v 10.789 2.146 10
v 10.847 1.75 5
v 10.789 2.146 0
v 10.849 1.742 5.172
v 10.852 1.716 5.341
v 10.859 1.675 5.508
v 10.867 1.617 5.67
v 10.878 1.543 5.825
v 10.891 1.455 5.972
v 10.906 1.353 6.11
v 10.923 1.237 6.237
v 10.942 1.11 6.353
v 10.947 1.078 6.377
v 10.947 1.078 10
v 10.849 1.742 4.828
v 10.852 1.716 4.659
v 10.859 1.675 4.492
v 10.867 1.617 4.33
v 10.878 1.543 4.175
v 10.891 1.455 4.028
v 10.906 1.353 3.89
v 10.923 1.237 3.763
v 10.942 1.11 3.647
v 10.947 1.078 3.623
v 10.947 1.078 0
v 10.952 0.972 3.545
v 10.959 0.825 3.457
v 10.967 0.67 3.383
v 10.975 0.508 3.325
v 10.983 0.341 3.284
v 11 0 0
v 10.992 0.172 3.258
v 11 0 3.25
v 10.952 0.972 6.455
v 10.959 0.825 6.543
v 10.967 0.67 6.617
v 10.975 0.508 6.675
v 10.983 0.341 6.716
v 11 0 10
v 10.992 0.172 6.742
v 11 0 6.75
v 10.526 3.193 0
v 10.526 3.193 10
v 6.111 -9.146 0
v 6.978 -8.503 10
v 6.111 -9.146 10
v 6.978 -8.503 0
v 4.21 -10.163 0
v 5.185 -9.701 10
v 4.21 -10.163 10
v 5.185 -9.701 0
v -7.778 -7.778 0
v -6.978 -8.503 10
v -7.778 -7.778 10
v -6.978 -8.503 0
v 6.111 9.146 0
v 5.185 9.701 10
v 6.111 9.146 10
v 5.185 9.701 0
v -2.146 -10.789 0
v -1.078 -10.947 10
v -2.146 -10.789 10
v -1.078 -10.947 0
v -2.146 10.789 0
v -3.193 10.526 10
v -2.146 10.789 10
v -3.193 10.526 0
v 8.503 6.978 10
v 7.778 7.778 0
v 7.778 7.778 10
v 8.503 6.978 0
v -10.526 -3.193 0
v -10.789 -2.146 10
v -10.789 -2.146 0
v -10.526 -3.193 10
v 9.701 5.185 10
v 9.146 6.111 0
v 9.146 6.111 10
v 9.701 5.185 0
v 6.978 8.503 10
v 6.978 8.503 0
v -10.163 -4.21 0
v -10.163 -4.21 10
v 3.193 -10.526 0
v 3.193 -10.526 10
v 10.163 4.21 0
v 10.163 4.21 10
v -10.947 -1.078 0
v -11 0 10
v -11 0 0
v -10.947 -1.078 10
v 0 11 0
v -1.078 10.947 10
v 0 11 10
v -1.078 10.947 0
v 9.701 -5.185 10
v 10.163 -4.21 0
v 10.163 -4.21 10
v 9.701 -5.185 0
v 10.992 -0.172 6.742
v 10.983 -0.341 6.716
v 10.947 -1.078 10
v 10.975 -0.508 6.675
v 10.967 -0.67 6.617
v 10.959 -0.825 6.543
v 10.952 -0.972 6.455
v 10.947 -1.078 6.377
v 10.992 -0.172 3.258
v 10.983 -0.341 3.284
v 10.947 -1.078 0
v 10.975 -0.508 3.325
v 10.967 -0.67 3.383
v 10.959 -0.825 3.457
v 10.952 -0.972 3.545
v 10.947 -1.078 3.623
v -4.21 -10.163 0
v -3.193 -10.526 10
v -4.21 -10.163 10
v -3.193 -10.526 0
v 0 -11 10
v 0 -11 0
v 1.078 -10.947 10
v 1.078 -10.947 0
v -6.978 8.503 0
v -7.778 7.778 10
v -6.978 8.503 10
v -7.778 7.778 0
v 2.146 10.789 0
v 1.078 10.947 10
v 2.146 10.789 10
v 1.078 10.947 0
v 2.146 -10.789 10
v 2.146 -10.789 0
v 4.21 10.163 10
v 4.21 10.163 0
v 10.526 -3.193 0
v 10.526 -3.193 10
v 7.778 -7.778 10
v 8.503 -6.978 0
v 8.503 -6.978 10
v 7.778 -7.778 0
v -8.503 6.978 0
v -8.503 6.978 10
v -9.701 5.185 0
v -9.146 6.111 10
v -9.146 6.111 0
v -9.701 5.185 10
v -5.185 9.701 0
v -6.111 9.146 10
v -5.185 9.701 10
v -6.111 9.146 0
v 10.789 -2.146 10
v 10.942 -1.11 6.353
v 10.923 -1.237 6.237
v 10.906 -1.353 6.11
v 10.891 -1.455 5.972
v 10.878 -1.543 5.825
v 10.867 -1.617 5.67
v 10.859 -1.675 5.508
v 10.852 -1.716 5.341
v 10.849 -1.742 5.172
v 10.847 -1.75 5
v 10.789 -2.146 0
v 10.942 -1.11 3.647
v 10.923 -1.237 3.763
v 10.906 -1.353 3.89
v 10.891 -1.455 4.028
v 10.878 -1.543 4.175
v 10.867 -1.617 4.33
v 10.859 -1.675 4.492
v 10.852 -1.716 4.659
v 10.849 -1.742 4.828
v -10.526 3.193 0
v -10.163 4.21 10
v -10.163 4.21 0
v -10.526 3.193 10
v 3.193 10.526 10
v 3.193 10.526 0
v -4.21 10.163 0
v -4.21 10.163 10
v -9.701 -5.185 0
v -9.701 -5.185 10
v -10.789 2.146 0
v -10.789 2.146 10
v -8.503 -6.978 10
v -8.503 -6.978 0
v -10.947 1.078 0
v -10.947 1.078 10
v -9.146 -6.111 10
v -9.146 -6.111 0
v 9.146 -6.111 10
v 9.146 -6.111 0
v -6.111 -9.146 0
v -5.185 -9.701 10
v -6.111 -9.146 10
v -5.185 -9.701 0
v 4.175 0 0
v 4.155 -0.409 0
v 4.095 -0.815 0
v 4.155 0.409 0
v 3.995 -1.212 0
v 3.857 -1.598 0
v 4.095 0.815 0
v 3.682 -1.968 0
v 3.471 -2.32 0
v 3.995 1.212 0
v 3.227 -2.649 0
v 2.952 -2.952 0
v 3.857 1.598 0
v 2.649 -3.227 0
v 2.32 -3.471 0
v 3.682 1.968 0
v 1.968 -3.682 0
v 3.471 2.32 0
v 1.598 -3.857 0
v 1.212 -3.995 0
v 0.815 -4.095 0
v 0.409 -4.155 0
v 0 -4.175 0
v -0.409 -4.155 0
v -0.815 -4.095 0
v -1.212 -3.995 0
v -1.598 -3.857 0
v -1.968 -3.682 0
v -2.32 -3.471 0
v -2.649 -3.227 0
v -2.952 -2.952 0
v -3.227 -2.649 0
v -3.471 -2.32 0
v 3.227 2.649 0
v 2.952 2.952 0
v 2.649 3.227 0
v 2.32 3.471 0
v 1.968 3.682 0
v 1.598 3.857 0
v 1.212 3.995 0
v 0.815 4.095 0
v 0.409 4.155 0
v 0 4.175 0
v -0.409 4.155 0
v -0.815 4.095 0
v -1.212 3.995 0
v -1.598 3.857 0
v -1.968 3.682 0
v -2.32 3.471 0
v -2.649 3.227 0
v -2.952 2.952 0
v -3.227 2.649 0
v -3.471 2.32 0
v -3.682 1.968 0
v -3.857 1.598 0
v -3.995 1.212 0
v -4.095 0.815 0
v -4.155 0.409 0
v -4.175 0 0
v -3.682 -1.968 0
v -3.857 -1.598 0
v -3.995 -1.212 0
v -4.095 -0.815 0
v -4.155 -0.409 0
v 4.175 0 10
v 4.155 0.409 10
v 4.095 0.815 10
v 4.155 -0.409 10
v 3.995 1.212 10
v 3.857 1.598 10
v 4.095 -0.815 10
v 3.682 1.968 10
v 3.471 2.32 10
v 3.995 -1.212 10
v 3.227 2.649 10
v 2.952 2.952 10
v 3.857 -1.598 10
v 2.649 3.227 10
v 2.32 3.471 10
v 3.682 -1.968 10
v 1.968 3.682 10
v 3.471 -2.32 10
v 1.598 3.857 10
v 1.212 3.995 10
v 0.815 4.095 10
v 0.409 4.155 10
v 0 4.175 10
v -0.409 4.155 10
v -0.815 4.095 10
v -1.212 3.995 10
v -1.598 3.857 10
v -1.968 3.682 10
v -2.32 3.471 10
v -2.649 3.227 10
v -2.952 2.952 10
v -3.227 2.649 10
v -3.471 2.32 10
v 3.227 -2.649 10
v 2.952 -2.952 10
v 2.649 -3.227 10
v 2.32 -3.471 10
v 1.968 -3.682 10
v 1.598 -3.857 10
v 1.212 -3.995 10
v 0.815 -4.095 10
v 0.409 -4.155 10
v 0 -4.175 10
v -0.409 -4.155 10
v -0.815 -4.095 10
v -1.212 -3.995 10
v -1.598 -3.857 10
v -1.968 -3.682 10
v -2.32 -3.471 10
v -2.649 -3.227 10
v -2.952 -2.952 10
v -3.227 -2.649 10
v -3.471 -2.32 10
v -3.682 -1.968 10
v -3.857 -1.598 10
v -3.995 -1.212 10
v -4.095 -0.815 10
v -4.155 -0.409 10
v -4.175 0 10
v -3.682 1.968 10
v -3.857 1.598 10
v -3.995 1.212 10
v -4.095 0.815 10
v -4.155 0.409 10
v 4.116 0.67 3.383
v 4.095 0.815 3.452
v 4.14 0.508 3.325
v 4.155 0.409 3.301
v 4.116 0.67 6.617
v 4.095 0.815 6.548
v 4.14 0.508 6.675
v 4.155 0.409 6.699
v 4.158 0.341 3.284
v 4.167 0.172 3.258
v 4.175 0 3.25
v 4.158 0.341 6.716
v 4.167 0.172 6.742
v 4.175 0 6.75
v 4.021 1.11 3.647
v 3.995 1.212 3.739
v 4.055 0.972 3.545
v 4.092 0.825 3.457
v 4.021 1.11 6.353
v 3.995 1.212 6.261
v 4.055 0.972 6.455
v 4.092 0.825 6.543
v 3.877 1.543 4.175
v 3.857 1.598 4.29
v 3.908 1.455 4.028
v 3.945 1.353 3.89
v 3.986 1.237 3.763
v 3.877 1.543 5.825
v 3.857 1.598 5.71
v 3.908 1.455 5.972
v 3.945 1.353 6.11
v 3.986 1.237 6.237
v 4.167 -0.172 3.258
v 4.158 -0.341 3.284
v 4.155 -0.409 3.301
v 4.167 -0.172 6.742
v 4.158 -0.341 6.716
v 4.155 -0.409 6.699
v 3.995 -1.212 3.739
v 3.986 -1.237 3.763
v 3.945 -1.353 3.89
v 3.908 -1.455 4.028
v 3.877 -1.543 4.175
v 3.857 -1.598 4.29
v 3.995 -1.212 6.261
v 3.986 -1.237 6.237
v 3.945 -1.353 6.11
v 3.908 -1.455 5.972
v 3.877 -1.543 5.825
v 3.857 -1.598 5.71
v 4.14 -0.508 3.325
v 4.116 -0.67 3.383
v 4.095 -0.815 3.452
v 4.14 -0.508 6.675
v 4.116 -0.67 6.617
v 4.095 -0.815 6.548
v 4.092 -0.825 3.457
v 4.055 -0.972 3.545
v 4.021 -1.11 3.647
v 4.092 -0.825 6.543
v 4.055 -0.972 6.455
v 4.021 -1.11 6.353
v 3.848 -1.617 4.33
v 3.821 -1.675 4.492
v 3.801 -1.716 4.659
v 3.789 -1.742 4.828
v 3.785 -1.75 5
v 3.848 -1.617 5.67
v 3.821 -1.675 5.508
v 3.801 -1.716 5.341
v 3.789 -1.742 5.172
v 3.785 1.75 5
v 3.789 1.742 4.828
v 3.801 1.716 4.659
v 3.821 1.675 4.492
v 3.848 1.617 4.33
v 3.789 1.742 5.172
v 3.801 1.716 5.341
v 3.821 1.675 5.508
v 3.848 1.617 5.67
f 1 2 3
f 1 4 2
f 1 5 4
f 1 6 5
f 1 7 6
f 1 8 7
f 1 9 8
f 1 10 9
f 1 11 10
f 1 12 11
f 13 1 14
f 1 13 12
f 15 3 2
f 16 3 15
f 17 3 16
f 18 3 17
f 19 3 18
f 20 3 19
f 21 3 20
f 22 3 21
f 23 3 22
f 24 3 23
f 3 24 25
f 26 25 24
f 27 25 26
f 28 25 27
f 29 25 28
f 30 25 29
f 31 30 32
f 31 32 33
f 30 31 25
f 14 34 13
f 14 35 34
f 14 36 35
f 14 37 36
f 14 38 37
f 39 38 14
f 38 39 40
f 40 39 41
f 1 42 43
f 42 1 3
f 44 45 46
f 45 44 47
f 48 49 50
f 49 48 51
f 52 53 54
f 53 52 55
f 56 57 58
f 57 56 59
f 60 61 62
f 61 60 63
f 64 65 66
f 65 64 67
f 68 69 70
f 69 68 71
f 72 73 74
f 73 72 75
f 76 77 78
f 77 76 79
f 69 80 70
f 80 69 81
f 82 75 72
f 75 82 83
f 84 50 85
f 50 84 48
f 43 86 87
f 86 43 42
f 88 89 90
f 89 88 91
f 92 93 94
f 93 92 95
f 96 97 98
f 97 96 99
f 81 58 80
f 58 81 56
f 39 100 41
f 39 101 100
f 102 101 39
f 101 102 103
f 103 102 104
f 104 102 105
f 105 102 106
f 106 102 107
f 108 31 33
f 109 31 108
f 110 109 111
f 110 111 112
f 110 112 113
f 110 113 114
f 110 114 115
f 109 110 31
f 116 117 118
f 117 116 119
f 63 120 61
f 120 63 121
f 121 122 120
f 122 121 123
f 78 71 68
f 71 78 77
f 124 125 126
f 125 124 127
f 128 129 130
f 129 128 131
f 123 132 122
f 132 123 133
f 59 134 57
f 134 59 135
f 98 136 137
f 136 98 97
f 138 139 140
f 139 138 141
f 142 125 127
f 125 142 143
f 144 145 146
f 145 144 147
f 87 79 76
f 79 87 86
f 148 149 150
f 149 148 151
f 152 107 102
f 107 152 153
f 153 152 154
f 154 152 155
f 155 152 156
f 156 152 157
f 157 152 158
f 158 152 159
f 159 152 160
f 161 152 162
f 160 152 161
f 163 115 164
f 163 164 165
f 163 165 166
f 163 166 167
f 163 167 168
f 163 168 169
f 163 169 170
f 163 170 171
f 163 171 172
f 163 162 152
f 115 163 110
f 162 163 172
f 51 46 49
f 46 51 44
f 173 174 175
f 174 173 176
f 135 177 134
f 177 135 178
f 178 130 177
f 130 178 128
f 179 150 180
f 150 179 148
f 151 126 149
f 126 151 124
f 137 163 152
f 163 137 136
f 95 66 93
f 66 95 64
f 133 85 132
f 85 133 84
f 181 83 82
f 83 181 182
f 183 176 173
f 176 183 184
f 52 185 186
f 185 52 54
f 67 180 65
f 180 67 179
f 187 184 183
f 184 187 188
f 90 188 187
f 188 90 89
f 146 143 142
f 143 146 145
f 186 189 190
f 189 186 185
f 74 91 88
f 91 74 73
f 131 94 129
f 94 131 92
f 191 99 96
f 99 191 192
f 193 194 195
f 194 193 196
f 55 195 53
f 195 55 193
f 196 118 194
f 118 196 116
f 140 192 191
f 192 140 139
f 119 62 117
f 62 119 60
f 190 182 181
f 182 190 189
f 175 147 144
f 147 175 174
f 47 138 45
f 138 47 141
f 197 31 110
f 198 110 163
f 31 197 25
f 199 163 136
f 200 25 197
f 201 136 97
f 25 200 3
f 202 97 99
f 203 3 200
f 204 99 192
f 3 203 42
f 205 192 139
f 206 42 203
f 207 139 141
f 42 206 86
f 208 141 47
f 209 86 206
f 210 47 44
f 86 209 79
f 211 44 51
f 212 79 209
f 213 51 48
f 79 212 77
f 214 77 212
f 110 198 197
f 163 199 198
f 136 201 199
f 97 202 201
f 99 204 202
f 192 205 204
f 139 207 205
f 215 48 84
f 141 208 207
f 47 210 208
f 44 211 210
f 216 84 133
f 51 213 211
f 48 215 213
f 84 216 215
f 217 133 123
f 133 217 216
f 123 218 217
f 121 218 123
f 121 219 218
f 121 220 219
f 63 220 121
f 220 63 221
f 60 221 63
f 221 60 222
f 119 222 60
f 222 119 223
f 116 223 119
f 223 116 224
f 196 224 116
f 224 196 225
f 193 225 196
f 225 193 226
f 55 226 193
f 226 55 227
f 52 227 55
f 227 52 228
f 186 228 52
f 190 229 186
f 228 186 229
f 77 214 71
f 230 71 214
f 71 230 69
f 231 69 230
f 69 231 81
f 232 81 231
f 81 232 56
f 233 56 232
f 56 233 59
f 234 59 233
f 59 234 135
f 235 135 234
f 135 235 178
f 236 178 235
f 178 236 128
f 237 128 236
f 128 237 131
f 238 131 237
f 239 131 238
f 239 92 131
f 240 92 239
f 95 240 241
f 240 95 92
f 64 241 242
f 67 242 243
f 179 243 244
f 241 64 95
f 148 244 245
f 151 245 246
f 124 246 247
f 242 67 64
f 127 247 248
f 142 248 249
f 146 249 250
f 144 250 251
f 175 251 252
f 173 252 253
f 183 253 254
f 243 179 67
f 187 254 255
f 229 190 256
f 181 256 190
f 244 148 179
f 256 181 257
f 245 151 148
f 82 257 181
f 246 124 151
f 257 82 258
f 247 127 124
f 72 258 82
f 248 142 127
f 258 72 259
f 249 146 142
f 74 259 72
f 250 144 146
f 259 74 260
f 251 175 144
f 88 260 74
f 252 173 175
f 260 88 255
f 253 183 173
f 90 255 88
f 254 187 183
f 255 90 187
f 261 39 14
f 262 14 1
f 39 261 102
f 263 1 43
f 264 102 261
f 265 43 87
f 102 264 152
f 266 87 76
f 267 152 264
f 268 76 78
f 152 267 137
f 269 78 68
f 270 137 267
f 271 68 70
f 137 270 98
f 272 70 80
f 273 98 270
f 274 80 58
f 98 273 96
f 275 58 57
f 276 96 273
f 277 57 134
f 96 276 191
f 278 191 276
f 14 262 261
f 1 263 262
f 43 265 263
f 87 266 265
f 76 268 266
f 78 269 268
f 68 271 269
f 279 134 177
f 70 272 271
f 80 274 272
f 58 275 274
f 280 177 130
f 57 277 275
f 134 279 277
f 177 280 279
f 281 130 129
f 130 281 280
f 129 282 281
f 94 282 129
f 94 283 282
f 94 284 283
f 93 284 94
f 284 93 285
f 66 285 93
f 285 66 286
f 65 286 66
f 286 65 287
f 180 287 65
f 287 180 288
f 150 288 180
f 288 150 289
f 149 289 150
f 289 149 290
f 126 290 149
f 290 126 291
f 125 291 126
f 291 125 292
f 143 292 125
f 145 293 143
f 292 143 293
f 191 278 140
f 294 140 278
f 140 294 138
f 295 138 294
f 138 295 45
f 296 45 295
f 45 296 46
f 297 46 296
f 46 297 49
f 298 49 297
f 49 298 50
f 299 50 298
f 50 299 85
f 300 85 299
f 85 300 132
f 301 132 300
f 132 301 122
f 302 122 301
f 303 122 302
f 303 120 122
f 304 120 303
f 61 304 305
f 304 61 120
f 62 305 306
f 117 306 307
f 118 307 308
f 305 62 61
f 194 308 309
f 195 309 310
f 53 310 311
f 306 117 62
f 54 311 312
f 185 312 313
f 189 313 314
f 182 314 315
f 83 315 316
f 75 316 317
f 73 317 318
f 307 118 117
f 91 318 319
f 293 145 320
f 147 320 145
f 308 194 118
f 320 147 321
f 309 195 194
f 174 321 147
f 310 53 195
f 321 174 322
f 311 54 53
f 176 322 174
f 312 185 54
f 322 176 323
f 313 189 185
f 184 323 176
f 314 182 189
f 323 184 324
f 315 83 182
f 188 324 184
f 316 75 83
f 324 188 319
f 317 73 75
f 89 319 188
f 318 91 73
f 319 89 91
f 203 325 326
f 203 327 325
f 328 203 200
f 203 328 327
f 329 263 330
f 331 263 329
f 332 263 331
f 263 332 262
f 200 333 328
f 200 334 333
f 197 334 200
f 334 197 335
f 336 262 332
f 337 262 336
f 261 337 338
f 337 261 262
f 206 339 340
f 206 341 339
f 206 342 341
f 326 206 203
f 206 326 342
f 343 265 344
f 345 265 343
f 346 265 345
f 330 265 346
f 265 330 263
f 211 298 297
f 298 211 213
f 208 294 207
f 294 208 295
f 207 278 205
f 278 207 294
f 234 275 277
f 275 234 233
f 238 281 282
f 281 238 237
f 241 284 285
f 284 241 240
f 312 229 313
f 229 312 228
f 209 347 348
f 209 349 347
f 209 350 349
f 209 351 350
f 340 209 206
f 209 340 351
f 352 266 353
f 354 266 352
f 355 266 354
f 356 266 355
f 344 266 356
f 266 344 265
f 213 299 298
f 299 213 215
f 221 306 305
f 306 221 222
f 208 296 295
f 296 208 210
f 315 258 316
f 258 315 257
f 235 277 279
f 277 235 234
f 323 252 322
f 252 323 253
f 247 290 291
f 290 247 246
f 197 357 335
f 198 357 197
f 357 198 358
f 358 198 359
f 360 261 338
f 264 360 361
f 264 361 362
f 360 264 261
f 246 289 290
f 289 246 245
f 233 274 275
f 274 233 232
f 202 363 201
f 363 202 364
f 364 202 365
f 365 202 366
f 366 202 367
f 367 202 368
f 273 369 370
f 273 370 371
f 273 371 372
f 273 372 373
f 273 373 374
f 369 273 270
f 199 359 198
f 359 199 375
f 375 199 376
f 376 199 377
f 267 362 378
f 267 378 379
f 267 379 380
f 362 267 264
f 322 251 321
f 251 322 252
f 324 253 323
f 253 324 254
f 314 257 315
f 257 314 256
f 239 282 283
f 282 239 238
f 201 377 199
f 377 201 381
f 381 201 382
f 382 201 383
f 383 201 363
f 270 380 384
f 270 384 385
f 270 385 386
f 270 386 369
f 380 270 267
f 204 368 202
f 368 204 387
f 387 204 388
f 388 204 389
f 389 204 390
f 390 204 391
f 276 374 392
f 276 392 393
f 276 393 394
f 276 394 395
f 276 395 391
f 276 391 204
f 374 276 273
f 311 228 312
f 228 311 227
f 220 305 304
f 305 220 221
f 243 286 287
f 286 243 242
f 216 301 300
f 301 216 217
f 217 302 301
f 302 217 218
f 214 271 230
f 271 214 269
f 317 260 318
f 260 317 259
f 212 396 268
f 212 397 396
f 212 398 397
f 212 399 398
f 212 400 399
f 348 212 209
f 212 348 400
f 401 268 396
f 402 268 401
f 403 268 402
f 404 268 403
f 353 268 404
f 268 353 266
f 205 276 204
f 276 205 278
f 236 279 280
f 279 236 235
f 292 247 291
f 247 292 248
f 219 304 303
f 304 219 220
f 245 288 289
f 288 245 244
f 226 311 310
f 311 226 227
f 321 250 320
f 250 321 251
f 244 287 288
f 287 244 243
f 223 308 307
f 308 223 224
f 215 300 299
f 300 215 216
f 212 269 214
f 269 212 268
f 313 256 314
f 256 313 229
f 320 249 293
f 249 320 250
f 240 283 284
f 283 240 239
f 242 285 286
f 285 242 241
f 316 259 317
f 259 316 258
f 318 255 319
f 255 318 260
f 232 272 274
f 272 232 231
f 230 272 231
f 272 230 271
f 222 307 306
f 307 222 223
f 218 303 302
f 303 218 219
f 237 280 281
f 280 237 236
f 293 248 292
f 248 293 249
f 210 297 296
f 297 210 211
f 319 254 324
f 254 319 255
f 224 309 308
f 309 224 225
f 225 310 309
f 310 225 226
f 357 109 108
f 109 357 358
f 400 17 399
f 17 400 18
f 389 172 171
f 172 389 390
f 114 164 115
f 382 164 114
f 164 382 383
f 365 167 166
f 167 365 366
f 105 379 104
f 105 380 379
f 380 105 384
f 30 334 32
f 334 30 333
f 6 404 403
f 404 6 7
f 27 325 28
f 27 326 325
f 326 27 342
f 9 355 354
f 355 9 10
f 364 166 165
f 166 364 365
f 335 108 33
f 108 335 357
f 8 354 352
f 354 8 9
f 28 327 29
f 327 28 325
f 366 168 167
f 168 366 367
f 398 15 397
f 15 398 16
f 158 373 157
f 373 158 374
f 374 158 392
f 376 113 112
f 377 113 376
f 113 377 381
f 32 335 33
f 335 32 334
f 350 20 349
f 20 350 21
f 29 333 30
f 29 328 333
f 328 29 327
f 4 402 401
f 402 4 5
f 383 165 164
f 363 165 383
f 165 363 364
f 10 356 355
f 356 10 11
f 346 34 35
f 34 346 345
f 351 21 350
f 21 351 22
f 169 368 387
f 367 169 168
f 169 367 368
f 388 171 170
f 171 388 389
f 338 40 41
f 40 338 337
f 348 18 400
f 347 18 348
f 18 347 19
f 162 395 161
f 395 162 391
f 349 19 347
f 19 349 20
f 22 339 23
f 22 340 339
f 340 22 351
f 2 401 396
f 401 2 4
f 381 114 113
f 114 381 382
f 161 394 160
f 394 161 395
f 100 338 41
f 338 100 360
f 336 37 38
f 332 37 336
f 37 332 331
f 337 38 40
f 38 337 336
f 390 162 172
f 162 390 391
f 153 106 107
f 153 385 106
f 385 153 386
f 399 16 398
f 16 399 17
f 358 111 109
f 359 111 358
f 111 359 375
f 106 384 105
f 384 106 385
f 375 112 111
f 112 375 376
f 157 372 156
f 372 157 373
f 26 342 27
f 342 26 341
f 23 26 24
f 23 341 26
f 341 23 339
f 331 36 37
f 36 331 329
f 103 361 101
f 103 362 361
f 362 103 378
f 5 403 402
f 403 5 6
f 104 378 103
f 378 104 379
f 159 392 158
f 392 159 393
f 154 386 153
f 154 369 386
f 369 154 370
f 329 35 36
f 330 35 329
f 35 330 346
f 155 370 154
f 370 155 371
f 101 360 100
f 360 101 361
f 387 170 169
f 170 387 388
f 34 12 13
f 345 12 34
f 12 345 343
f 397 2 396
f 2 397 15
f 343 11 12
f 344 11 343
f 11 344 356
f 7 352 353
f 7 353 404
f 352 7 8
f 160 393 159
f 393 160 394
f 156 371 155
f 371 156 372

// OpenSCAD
// file: parameters.scad
// =============================================================================
// Gen-AM Vernier flux-claw hyper — WOUND-AWARE (HARD GATE)
// Dual-rotor vernier: Rotor B +22.5° vs 12-slot stator; Ø5 flux claws
// =============================================================================

wire_awg            = 26;
wire_od             = 0.45;
turns               = 185;      // +10 vs Gen-AJ 175
fill                = 0.70;
layers_per_face     = 2;
wind_build_axial    = layers_per_face * wire_od * fill;   // 0.63 mm
wind_build_radial   = 3 * wire_od * fill;                 // 0.945 mm

coil_id_r           = 16.5;
coil_od_r           = 63.5;
span_deg            = 25.0;
former_web          = 1.40;     // thinner vs AJ 1.50
flange_t            = 0.60;
wall                = 1.2;
slot_w              = 2.4;
mount_hole          = 3.5;
tab_len             = 7.0;

former_bare_h       = former_web + 2 * flange_t;            // 2.60 mm
coil_envelope_h     = former_bare_h + 2 * wind_build_axial; // 3.86 mm

run_clear           = 0.50;
gap_spacer_h        = run_clear + wind_build_axial;         // 1.13 mm
m2m                 = coil_envelope_h + 2 * run_clear;      // 4.86 mm

coil_stations       = 12;
bay_r_in            = coil_id_r - 2.0 - wind_build_radial;
bay_r_out           = coil_od_r + 2.0 + wind_build_radial;
bay_span            = span_deg + 4.0;
bay_offset          = 2.0;
stator_thick        = former_bare_h;
stator_od           = 160.0;
shaft_clear_stator  = 34.0;
coil_mount_r        = 26.0;

large_pocket_d      = 20.3;
small_pocket_d      = 5.3;
pocket_h            = 5.2;
large_n             = 8;
R_large             = 40.5;     // closer to copper centroid vs AJ R=42
R_small_inner       = 26.0;
R_small_mid         = 40.5;
R_small_outer       = 56.0;
carrier_od          = 156.0;
carrier_thick       = 7.5;
hub_h               = 10.0;
hub_od              = 30.0;
rotor_b_offset_deg  = 22.5;     // vernier offset vs 12-slot stator

shaft_bore          = 8.35;
bearing_d           = 21.85;
bearing_h           = 7.2;
m3_clear            = 3.5;
bolt_r_inner        = 36.0;
bolt_n_inner        = 6;
flange_bolt_r       = 72.0;
flange_bolt_n       = 6;
brace_r             = 68.0;
brace_d             = 4.3;
brace_n             = 4;

spacer_pad_od       = 14.0;
spacer_pad_id       = m3_clear;
endbell_od          = 160.0;
endbell_thick       = 8.0;
endbell_shaft_clear = 10.0;

$fn = 64;
// main file
// Gen-AM shaft collar — print ×2–4
include <parameters.scad>;
$fn = 64;
od = 22; id = shaft_bore; h = 10; set_d = 3.5;
difference() {
    cylinder(d=od, h=h);
    translate([0, 0, -0.1]) cylinder(d=id, h=h + 0.2);
    translate([0, 0, h/2]) rotate([0, 90, 0]) cylinder(d=set_d, h=od);
}
